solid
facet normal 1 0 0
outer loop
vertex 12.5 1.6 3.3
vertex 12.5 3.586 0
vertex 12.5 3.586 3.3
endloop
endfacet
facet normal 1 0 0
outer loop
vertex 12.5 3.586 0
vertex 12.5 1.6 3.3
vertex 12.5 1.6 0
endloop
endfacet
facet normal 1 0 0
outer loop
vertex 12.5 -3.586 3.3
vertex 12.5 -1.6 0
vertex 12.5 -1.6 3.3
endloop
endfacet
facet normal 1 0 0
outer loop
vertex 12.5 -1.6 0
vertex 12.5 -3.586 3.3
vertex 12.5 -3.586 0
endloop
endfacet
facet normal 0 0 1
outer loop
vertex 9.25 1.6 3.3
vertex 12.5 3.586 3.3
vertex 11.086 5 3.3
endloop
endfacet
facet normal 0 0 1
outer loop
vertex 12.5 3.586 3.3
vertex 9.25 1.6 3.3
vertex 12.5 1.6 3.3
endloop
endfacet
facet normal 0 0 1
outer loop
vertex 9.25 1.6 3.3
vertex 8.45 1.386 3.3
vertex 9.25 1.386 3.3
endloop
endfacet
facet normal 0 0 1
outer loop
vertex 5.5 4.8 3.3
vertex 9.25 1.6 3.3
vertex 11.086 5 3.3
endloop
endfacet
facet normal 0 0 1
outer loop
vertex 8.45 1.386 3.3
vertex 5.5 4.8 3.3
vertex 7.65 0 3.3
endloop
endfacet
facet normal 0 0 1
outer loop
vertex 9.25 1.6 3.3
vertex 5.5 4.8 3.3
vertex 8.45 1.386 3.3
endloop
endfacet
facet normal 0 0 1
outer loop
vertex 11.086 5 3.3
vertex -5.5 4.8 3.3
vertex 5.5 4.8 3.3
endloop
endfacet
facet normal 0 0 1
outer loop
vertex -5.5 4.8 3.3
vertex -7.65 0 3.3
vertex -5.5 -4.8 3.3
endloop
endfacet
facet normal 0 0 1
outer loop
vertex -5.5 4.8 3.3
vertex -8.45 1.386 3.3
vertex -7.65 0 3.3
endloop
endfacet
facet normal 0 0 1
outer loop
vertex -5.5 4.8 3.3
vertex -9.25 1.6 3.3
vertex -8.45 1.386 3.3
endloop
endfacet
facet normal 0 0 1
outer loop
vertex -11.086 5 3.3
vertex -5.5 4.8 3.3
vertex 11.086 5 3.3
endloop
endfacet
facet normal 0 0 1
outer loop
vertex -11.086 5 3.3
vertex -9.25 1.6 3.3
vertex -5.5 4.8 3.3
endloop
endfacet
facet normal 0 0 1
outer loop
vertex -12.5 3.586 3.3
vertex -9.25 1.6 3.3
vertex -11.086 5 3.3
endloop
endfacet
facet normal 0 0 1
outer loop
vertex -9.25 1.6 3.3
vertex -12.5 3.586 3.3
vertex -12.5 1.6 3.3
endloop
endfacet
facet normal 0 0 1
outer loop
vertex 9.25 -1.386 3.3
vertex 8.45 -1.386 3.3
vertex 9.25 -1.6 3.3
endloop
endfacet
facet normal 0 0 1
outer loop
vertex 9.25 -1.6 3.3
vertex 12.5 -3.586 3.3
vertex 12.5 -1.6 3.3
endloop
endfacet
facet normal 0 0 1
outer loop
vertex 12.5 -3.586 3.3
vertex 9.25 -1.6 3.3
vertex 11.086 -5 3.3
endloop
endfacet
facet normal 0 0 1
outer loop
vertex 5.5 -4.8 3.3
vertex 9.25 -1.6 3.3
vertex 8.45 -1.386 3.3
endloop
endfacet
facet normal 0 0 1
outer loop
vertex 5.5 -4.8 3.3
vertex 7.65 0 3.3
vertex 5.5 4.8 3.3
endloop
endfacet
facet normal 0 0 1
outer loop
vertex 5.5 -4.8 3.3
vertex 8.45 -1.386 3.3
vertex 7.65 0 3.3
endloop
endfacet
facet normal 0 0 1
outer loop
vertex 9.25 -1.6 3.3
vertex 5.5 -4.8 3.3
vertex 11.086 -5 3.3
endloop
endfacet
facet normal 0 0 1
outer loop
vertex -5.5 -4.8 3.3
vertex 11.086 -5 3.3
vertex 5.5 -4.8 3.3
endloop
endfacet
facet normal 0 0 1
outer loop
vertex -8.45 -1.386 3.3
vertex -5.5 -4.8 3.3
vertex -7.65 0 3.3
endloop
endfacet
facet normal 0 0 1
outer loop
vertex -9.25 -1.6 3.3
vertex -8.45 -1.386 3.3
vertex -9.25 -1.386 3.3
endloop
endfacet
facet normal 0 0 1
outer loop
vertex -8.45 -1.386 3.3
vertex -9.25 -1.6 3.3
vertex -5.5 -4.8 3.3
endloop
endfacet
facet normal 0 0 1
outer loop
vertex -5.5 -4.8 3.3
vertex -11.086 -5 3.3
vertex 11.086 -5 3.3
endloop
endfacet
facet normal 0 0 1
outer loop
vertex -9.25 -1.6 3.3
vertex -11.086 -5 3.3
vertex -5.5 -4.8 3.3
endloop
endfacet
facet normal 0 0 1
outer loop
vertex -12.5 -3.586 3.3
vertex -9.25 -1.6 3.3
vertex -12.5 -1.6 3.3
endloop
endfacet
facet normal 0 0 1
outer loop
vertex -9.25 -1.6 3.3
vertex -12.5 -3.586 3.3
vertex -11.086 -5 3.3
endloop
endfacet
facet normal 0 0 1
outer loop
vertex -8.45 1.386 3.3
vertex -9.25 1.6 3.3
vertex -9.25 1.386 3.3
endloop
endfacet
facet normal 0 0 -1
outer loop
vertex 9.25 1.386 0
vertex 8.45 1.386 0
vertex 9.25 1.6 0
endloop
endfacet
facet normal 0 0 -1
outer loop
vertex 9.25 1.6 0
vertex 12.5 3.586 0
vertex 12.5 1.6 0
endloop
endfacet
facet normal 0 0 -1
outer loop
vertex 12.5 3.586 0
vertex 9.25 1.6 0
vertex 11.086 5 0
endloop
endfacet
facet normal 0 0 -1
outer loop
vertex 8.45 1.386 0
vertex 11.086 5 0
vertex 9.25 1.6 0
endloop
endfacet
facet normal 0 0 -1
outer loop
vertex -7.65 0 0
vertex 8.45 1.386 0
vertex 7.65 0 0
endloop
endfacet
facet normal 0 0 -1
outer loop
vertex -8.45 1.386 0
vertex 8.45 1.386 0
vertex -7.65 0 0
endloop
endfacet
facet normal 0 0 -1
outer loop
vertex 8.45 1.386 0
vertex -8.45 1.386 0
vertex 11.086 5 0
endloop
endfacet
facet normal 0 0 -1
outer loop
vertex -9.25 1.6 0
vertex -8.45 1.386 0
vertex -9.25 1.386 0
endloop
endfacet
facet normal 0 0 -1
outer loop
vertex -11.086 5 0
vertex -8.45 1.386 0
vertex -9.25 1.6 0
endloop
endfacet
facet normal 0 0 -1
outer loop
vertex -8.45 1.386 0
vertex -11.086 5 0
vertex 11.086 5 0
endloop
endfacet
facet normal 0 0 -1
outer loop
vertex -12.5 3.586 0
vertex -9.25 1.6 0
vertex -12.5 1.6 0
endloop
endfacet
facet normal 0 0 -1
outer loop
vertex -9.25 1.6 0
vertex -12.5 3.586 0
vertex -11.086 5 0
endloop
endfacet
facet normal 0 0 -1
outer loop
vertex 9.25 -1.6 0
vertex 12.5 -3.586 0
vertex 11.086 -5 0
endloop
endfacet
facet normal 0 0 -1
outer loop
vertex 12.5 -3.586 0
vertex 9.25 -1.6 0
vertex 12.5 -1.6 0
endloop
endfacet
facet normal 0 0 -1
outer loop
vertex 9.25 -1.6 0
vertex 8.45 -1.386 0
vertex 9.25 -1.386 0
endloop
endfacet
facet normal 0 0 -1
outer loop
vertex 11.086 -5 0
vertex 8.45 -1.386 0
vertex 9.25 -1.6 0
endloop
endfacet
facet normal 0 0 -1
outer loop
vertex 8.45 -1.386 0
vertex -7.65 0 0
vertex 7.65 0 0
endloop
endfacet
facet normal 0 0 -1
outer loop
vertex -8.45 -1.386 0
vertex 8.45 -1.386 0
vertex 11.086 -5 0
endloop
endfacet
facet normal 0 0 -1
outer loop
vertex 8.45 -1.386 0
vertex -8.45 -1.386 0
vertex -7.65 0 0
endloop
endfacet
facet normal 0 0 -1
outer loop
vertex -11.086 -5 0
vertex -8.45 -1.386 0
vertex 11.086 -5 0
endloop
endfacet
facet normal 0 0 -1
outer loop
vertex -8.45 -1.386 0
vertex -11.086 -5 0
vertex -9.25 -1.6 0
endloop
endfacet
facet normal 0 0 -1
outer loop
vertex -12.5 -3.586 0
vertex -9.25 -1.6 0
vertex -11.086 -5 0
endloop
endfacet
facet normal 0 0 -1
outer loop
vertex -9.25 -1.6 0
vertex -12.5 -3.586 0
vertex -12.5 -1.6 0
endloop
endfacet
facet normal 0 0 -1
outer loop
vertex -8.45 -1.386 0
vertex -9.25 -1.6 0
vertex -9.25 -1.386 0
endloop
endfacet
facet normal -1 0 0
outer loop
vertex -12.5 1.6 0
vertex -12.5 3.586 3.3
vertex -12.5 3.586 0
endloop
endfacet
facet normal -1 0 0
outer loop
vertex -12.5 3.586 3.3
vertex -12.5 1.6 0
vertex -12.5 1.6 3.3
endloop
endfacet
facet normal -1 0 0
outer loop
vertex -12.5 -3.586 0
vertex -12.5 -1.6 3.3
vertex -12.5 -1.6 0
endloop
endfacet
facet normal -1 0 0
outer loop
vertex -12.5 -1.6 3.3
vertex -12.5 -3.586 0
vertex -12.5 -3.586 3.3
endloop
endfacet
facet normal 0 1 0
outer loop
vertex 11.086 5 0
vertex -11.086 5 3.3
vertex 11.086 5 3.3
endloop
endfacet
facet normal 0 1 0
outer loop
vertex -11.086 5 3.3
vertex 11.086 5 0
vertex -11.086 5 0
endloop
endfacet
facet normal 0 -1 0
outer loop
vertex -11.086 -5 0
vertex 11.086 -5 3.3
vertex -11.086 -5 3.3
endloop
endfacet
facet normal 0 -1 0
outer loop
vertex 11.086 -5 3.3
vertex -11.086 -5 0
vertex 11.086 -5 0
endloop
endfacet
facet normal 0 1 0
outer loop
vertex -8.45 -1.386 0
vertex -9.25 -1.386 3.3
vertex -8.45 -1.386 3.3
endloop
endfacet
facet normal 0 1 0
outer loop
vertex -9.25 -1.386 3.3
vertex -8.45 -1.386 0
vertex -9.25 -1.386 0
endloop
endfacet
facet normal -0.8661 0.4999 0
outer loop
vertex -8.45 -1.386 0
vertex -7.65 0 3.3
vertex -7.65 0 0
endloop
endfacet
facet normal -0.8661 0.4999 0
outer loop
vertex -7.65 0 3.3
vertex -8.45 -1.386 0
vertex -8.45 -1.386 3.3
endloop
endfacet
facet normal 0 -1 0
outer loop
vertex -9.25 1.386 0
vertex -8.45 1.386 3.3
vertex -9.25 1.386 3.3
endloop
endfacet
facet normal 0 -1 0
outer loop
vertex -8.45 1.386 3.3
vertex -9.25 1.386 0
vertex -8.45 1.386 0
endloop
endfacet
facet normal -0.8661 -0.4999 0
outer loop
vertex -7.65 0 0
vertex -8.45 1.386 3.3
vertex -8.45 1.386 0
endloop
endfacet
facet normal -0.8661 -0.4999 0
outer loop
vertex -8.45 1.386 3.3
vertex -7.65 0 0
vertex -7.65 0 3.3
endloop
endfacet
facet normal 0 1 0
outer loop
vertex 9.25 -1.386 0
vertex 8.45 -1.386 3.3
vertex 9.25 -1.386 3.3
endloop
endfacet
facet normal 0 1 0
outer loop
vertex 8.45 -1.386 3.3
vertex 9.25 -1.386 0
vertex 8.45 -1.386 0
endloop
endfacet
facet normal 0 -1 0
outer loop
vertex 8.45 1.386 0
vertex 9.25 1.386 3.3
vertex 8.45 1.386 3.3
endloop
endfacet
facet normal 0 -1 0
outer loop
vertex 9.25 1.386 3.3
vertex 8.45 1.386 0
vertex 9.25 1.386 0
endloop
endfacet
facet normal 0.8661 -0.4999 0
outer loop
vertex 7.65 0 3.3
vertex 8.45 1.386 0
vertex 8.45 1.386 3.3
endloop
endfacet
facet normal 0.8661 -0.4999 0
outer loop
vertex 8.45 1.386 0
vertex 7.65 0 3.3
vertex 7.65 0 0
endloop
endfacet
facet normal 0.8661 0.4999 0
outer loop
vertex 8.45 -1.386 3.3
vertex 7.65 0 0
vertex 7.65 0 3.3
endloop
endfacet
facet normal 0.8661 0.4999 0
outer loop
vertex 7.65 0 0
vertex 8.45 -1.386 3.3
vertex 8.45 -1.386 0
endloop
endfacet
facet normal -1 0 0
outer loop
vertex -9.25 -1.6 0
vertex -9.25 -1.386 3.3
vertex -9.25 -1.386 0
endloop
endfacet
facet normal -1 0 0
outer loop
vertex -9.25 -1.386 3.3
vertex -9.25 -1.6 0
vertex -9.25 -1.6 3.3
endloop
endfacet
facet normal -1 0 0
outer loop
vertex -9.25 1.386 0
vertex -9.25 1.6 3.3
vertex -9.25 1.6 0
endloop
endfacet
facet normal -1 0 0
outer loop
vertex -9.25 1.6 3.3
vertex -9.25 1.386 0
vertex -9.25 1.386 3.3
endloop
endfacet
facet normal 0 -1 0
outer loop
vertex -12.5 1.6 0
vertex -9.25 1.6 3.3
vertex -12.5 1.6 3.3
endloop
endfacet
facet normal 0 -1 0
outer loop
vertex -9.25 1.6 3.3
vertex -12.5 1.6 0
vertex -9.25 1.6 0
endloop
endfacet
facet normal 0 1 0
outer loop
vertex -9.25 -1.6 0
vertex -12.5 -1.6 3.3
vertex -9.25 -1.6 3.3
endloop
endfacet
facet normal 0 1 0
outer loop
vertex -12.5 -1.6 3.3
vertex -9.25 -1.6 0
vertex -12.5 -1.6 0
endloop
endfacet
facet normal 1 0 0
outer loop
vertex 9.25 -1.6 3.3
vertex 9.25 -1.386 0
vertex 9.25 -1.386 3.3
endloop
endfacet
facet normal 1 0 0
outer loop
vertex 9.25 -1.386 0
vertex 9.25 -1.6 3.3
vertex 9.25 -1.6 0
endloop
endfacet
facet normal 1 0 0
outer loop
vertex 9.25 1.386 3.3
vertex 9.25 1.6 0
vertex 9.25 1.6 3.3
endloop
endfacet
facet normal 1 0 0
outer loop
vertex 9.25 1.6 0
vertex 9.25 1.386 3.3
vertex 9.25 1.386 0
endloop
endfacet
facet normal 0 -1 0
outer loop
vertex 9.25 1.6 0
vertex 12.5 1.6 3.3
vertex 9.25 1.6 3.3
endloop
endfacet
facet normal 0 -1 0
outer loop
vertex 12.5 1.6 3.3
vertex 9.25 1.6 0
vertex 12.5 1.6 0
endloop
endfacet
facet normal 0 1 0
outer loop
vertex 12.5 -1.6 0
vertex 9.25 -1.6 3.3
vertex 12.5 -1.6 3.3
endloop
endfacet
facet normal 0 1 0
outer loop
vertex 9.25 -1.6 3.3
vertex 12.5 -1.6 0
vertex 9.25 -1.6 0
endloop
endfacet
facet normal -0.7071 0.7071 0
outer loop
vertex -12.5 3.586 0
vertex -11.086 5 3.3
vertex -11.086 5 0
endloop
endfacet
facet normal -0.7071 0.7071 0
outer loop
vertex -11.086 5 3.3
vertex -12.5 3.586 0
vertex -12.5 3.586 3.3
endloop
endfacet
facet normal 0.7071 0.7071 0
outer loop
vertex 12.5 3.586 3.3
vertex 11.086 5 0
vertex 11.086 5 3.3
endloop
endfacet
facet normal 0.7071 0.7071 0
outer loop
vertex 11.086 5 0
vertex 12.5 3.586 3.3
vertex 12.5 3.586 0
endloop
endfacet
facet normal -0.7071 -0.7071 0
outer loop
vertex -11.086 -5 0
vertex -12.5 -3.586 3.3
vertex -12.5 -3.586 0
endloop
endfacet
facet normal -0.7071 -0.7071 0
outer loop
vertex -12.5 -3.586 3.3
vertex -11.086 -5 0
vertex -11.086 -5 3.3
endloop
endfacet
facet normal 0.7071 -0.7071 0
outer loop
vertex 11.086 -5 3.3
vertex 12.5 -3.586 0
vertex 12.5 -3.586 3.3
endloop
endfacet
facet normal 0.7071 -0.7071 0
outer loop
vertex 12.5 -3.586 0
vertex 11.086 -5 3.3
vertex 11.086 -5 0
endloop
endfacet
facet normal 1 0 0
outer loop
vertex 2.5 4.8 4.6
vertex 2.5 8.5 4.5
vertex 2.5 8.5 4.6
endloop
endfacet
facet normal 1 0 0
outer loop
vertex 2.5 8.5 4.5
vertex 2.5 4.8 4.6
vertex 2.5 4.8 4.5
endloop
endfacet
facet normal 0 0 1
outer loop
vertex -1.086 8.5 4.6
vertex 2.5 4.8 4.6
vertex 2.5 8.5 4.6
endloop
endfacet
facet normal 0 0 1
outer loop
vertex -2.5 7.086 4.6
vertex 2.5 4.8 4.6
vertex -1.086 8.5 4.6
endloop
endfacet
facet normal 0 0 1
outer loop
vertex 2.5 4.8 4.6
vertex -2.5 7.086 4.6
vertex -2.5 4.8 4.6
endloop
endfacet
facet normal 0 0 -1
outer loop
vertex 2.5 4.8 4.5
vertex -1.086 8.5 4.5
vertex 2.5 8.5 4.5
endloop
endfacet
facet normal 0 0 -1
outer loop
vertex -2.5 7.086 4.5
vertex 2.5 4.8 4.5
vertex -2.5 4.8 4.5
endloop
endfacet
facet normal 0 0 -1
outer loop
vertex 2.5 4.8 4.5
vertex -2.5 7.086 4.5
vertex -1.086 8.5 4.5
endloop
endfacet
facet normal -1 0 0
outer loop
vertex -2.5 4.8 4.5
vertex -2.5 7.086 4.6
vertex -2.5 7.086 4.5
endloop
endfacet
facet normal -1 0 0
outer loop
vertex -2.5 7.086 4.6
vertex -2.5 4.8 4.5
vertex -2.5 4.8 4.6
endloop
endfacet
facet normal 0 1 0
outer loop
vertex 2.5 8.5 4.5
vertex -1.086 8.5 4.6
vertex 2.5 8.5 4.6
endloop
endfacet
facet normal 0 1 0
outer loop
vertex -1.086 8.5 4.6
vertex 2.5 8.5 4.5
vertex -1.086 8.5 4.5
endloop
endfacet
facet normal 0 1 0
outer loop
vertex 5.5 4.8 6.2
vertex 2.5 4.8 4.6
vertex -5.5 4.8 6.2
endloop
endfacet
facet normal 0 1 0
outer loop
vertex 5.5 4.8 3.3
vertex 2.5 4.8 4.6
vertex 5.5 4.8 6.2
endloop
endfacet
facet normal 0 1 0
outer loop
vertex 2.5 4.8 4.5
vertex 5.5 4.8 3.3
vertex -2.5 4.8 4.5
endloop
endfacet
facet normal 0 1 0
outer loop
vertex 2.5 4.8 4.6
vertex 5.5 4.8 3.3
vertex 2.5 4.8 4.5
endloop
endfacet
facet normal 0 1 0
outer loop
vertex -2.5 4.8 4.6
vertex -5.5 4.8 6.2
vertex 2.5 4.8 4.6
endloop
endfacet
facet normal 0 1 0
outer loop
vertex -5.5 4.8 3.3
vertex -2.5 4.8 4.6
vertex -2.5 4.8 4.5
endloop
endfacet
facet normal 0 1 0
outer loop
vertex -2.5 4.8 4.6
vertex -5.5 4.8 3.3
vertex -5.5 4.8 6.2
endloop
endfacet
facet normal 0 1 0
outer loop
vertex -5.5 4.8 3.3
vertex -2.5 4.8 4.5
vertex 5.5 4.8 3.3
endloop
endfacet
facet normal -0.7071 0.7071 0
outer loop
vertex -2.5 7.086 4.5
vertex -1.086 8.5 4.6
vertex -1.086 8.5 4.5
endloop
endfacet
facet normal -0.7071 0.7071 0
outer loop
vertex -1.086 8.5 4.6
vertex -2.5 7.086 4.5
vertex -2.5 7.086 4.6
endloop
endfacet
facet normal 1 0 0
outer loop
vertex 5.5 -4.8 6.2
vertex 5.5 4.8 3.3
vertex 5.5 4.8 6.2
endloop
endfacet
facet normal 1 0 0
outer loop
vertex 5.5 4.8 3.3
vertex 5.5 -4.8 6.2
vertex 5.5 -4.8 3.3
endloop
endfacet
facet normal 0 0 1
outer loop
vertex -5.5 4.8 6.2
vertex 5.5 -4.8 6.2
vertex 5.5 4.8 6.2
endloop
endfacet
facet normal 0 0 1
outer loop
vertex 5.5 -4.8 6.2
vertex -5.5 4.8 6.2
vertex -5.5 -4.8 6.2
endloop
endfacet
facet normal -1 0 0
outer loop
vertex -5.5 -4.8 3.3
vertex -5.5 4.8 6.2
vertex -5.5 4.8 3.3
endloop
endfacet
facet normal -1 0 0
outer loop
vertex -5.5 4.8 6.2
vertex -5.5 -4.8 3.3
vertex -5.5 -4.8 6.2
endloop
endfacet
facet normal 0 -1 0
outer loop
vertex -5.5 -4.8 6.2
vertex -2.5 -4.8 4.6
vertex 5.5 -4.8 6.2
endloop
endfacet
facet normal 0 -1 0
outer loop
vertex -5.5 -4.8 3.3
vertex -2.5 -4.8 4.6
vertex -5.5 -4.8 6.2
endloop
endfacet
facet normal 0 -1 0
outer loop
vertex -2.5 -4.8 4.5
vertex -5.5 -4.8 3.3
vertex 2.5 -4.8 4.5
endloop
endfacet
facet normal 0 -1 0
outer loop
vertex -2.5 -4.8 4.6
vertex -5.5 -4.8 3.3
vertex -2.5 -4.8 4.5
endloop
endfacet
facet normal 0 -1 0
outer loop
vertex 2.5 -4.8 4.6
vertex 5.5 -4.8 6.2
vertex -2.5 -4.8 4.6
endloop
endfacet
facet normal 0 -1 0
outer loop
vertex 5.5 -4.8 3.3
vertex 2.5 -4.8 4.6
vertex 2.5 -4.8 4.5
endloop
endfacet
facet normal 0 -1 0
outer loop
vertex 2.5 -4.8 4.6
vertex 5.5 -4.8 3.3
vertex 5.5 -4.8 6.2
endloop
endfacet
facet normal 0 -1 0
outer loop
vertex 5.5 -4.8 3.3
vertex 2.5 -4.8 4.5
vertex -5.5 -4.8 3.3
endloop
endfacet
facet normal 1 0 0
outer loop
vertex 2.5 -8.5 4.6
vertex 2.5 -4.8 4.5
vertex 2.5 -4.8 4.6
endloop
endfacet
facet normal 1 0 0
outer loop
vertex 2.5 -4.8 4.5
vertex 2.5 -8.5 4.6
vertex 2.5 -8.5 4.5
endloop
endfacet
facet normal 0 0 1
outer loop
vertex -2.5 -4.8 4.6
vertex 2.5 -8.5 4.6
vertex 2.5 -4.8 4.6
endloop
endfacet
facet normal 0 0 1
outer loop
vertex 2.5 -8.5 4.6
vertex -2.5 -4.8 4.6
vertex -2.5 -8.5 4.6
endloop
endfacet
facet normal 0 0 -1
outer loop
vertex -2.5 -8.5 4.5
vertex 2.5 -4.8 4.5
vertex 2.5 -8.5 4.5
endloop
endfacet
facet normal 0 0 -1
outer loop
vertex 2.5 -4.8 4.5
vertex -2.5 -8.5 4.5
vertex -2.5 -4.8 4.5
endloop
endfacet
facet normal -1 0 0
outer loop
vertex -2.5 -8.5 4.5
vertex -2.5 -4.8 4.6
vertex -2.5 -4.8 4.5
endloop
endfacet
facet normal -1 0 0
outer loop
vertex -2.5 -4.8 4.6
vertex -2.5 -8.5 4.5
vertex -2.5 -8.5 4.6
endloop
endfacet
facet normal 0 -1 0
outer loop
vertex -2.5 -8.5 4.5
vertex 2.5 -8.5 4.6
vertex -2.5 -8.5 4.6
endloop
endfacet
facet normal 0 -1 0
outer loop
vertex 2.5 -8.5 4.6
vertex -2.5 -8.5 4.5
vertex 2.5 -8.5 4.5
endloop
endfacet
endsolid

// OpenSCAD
// source tab dimensions
s_x = 25.0;
s_y = 10.0;
s_z = 3.3;
hole_r = 1.6;
hole_w = 18.5;
chamfer = 2.0;

// body dimensions
b_x = 11.0;
b_y = 9.6;
b_z = 6.2-3.3;

// the drain and gate conductors
c_x = 5.0;
c_y = (17.0-b_y)/2;
c_z = 0.1;

d = 0.1;
// The source tab
difference() {
    // The source tab outline
    color("blue") translate([-s_x/2,-s_y/2,0]) cube([s_x, s_y, s_z]);
    // the hole cutouts
    translate([-hole_w/2,0,-d]) cylinder(s_z+2*d,hole_r,hole_r);
    translate([+hole_w/2,0,-d]) cylinder(s_z+2*d,hole_r,hole_r);
    translate([-s_x/2-d,-hole_r,-d]) cube([(s_x-hole_w)/2+d,2*hole_r,s_z+2*d]);
    translate([s_x/2-(s_x-hole_w)/2,-hole_r,-d]) cube([(s_x-hole_w)/2+d,2*hole_r,s_z+2*d]);
    // the chamfers
    translate([-s_x/2,s_y/2-chamfer/sqrt(2),-d]) rotate([0,0,45]) cube([chamfer,chamfer,s_z+2*d]);
    translate([s_x/2,s_y/2-chamfer/sqrt(2),-d]) rotate([0,0,45]) cube([chamfer,chamfer,s_z+2*d]);
    translate([-s_x/2,-s_y/2-chamfer/sqrt(2),-d]) rotate([0,0,45]) cube([chamfer,chamfer,s_z+2*d]);
    translate([s_x/2,-s_y/2-chamfer/sqrt(2),-d]) rotate([0,0,45]) cube([chamfer,chamfer,s_z+2*d]);
}

// The transistor body
color("black") translate([-b_x/2,-b_y/2,s_z]) cube([b_x,b_y,b_z]);
// The drain conductor
difference() {
    color("gray") translate([-c_x/2,b_y/2,4.5]) cube([c_x,c_y,c_z]);
    // chamfer
    translate([-c_x/2,b_y/2+c_y-chamfer/sqrt(2),s_z-d]) rotate([0,0,45]) cube([chamfer,chamfer,s_z+2*d]);
}

// The gate conductor
color("gray") translate([-c_x/2,-b_y/2-c_y,4.5]) cube([c_x,c_y,c_z]);
